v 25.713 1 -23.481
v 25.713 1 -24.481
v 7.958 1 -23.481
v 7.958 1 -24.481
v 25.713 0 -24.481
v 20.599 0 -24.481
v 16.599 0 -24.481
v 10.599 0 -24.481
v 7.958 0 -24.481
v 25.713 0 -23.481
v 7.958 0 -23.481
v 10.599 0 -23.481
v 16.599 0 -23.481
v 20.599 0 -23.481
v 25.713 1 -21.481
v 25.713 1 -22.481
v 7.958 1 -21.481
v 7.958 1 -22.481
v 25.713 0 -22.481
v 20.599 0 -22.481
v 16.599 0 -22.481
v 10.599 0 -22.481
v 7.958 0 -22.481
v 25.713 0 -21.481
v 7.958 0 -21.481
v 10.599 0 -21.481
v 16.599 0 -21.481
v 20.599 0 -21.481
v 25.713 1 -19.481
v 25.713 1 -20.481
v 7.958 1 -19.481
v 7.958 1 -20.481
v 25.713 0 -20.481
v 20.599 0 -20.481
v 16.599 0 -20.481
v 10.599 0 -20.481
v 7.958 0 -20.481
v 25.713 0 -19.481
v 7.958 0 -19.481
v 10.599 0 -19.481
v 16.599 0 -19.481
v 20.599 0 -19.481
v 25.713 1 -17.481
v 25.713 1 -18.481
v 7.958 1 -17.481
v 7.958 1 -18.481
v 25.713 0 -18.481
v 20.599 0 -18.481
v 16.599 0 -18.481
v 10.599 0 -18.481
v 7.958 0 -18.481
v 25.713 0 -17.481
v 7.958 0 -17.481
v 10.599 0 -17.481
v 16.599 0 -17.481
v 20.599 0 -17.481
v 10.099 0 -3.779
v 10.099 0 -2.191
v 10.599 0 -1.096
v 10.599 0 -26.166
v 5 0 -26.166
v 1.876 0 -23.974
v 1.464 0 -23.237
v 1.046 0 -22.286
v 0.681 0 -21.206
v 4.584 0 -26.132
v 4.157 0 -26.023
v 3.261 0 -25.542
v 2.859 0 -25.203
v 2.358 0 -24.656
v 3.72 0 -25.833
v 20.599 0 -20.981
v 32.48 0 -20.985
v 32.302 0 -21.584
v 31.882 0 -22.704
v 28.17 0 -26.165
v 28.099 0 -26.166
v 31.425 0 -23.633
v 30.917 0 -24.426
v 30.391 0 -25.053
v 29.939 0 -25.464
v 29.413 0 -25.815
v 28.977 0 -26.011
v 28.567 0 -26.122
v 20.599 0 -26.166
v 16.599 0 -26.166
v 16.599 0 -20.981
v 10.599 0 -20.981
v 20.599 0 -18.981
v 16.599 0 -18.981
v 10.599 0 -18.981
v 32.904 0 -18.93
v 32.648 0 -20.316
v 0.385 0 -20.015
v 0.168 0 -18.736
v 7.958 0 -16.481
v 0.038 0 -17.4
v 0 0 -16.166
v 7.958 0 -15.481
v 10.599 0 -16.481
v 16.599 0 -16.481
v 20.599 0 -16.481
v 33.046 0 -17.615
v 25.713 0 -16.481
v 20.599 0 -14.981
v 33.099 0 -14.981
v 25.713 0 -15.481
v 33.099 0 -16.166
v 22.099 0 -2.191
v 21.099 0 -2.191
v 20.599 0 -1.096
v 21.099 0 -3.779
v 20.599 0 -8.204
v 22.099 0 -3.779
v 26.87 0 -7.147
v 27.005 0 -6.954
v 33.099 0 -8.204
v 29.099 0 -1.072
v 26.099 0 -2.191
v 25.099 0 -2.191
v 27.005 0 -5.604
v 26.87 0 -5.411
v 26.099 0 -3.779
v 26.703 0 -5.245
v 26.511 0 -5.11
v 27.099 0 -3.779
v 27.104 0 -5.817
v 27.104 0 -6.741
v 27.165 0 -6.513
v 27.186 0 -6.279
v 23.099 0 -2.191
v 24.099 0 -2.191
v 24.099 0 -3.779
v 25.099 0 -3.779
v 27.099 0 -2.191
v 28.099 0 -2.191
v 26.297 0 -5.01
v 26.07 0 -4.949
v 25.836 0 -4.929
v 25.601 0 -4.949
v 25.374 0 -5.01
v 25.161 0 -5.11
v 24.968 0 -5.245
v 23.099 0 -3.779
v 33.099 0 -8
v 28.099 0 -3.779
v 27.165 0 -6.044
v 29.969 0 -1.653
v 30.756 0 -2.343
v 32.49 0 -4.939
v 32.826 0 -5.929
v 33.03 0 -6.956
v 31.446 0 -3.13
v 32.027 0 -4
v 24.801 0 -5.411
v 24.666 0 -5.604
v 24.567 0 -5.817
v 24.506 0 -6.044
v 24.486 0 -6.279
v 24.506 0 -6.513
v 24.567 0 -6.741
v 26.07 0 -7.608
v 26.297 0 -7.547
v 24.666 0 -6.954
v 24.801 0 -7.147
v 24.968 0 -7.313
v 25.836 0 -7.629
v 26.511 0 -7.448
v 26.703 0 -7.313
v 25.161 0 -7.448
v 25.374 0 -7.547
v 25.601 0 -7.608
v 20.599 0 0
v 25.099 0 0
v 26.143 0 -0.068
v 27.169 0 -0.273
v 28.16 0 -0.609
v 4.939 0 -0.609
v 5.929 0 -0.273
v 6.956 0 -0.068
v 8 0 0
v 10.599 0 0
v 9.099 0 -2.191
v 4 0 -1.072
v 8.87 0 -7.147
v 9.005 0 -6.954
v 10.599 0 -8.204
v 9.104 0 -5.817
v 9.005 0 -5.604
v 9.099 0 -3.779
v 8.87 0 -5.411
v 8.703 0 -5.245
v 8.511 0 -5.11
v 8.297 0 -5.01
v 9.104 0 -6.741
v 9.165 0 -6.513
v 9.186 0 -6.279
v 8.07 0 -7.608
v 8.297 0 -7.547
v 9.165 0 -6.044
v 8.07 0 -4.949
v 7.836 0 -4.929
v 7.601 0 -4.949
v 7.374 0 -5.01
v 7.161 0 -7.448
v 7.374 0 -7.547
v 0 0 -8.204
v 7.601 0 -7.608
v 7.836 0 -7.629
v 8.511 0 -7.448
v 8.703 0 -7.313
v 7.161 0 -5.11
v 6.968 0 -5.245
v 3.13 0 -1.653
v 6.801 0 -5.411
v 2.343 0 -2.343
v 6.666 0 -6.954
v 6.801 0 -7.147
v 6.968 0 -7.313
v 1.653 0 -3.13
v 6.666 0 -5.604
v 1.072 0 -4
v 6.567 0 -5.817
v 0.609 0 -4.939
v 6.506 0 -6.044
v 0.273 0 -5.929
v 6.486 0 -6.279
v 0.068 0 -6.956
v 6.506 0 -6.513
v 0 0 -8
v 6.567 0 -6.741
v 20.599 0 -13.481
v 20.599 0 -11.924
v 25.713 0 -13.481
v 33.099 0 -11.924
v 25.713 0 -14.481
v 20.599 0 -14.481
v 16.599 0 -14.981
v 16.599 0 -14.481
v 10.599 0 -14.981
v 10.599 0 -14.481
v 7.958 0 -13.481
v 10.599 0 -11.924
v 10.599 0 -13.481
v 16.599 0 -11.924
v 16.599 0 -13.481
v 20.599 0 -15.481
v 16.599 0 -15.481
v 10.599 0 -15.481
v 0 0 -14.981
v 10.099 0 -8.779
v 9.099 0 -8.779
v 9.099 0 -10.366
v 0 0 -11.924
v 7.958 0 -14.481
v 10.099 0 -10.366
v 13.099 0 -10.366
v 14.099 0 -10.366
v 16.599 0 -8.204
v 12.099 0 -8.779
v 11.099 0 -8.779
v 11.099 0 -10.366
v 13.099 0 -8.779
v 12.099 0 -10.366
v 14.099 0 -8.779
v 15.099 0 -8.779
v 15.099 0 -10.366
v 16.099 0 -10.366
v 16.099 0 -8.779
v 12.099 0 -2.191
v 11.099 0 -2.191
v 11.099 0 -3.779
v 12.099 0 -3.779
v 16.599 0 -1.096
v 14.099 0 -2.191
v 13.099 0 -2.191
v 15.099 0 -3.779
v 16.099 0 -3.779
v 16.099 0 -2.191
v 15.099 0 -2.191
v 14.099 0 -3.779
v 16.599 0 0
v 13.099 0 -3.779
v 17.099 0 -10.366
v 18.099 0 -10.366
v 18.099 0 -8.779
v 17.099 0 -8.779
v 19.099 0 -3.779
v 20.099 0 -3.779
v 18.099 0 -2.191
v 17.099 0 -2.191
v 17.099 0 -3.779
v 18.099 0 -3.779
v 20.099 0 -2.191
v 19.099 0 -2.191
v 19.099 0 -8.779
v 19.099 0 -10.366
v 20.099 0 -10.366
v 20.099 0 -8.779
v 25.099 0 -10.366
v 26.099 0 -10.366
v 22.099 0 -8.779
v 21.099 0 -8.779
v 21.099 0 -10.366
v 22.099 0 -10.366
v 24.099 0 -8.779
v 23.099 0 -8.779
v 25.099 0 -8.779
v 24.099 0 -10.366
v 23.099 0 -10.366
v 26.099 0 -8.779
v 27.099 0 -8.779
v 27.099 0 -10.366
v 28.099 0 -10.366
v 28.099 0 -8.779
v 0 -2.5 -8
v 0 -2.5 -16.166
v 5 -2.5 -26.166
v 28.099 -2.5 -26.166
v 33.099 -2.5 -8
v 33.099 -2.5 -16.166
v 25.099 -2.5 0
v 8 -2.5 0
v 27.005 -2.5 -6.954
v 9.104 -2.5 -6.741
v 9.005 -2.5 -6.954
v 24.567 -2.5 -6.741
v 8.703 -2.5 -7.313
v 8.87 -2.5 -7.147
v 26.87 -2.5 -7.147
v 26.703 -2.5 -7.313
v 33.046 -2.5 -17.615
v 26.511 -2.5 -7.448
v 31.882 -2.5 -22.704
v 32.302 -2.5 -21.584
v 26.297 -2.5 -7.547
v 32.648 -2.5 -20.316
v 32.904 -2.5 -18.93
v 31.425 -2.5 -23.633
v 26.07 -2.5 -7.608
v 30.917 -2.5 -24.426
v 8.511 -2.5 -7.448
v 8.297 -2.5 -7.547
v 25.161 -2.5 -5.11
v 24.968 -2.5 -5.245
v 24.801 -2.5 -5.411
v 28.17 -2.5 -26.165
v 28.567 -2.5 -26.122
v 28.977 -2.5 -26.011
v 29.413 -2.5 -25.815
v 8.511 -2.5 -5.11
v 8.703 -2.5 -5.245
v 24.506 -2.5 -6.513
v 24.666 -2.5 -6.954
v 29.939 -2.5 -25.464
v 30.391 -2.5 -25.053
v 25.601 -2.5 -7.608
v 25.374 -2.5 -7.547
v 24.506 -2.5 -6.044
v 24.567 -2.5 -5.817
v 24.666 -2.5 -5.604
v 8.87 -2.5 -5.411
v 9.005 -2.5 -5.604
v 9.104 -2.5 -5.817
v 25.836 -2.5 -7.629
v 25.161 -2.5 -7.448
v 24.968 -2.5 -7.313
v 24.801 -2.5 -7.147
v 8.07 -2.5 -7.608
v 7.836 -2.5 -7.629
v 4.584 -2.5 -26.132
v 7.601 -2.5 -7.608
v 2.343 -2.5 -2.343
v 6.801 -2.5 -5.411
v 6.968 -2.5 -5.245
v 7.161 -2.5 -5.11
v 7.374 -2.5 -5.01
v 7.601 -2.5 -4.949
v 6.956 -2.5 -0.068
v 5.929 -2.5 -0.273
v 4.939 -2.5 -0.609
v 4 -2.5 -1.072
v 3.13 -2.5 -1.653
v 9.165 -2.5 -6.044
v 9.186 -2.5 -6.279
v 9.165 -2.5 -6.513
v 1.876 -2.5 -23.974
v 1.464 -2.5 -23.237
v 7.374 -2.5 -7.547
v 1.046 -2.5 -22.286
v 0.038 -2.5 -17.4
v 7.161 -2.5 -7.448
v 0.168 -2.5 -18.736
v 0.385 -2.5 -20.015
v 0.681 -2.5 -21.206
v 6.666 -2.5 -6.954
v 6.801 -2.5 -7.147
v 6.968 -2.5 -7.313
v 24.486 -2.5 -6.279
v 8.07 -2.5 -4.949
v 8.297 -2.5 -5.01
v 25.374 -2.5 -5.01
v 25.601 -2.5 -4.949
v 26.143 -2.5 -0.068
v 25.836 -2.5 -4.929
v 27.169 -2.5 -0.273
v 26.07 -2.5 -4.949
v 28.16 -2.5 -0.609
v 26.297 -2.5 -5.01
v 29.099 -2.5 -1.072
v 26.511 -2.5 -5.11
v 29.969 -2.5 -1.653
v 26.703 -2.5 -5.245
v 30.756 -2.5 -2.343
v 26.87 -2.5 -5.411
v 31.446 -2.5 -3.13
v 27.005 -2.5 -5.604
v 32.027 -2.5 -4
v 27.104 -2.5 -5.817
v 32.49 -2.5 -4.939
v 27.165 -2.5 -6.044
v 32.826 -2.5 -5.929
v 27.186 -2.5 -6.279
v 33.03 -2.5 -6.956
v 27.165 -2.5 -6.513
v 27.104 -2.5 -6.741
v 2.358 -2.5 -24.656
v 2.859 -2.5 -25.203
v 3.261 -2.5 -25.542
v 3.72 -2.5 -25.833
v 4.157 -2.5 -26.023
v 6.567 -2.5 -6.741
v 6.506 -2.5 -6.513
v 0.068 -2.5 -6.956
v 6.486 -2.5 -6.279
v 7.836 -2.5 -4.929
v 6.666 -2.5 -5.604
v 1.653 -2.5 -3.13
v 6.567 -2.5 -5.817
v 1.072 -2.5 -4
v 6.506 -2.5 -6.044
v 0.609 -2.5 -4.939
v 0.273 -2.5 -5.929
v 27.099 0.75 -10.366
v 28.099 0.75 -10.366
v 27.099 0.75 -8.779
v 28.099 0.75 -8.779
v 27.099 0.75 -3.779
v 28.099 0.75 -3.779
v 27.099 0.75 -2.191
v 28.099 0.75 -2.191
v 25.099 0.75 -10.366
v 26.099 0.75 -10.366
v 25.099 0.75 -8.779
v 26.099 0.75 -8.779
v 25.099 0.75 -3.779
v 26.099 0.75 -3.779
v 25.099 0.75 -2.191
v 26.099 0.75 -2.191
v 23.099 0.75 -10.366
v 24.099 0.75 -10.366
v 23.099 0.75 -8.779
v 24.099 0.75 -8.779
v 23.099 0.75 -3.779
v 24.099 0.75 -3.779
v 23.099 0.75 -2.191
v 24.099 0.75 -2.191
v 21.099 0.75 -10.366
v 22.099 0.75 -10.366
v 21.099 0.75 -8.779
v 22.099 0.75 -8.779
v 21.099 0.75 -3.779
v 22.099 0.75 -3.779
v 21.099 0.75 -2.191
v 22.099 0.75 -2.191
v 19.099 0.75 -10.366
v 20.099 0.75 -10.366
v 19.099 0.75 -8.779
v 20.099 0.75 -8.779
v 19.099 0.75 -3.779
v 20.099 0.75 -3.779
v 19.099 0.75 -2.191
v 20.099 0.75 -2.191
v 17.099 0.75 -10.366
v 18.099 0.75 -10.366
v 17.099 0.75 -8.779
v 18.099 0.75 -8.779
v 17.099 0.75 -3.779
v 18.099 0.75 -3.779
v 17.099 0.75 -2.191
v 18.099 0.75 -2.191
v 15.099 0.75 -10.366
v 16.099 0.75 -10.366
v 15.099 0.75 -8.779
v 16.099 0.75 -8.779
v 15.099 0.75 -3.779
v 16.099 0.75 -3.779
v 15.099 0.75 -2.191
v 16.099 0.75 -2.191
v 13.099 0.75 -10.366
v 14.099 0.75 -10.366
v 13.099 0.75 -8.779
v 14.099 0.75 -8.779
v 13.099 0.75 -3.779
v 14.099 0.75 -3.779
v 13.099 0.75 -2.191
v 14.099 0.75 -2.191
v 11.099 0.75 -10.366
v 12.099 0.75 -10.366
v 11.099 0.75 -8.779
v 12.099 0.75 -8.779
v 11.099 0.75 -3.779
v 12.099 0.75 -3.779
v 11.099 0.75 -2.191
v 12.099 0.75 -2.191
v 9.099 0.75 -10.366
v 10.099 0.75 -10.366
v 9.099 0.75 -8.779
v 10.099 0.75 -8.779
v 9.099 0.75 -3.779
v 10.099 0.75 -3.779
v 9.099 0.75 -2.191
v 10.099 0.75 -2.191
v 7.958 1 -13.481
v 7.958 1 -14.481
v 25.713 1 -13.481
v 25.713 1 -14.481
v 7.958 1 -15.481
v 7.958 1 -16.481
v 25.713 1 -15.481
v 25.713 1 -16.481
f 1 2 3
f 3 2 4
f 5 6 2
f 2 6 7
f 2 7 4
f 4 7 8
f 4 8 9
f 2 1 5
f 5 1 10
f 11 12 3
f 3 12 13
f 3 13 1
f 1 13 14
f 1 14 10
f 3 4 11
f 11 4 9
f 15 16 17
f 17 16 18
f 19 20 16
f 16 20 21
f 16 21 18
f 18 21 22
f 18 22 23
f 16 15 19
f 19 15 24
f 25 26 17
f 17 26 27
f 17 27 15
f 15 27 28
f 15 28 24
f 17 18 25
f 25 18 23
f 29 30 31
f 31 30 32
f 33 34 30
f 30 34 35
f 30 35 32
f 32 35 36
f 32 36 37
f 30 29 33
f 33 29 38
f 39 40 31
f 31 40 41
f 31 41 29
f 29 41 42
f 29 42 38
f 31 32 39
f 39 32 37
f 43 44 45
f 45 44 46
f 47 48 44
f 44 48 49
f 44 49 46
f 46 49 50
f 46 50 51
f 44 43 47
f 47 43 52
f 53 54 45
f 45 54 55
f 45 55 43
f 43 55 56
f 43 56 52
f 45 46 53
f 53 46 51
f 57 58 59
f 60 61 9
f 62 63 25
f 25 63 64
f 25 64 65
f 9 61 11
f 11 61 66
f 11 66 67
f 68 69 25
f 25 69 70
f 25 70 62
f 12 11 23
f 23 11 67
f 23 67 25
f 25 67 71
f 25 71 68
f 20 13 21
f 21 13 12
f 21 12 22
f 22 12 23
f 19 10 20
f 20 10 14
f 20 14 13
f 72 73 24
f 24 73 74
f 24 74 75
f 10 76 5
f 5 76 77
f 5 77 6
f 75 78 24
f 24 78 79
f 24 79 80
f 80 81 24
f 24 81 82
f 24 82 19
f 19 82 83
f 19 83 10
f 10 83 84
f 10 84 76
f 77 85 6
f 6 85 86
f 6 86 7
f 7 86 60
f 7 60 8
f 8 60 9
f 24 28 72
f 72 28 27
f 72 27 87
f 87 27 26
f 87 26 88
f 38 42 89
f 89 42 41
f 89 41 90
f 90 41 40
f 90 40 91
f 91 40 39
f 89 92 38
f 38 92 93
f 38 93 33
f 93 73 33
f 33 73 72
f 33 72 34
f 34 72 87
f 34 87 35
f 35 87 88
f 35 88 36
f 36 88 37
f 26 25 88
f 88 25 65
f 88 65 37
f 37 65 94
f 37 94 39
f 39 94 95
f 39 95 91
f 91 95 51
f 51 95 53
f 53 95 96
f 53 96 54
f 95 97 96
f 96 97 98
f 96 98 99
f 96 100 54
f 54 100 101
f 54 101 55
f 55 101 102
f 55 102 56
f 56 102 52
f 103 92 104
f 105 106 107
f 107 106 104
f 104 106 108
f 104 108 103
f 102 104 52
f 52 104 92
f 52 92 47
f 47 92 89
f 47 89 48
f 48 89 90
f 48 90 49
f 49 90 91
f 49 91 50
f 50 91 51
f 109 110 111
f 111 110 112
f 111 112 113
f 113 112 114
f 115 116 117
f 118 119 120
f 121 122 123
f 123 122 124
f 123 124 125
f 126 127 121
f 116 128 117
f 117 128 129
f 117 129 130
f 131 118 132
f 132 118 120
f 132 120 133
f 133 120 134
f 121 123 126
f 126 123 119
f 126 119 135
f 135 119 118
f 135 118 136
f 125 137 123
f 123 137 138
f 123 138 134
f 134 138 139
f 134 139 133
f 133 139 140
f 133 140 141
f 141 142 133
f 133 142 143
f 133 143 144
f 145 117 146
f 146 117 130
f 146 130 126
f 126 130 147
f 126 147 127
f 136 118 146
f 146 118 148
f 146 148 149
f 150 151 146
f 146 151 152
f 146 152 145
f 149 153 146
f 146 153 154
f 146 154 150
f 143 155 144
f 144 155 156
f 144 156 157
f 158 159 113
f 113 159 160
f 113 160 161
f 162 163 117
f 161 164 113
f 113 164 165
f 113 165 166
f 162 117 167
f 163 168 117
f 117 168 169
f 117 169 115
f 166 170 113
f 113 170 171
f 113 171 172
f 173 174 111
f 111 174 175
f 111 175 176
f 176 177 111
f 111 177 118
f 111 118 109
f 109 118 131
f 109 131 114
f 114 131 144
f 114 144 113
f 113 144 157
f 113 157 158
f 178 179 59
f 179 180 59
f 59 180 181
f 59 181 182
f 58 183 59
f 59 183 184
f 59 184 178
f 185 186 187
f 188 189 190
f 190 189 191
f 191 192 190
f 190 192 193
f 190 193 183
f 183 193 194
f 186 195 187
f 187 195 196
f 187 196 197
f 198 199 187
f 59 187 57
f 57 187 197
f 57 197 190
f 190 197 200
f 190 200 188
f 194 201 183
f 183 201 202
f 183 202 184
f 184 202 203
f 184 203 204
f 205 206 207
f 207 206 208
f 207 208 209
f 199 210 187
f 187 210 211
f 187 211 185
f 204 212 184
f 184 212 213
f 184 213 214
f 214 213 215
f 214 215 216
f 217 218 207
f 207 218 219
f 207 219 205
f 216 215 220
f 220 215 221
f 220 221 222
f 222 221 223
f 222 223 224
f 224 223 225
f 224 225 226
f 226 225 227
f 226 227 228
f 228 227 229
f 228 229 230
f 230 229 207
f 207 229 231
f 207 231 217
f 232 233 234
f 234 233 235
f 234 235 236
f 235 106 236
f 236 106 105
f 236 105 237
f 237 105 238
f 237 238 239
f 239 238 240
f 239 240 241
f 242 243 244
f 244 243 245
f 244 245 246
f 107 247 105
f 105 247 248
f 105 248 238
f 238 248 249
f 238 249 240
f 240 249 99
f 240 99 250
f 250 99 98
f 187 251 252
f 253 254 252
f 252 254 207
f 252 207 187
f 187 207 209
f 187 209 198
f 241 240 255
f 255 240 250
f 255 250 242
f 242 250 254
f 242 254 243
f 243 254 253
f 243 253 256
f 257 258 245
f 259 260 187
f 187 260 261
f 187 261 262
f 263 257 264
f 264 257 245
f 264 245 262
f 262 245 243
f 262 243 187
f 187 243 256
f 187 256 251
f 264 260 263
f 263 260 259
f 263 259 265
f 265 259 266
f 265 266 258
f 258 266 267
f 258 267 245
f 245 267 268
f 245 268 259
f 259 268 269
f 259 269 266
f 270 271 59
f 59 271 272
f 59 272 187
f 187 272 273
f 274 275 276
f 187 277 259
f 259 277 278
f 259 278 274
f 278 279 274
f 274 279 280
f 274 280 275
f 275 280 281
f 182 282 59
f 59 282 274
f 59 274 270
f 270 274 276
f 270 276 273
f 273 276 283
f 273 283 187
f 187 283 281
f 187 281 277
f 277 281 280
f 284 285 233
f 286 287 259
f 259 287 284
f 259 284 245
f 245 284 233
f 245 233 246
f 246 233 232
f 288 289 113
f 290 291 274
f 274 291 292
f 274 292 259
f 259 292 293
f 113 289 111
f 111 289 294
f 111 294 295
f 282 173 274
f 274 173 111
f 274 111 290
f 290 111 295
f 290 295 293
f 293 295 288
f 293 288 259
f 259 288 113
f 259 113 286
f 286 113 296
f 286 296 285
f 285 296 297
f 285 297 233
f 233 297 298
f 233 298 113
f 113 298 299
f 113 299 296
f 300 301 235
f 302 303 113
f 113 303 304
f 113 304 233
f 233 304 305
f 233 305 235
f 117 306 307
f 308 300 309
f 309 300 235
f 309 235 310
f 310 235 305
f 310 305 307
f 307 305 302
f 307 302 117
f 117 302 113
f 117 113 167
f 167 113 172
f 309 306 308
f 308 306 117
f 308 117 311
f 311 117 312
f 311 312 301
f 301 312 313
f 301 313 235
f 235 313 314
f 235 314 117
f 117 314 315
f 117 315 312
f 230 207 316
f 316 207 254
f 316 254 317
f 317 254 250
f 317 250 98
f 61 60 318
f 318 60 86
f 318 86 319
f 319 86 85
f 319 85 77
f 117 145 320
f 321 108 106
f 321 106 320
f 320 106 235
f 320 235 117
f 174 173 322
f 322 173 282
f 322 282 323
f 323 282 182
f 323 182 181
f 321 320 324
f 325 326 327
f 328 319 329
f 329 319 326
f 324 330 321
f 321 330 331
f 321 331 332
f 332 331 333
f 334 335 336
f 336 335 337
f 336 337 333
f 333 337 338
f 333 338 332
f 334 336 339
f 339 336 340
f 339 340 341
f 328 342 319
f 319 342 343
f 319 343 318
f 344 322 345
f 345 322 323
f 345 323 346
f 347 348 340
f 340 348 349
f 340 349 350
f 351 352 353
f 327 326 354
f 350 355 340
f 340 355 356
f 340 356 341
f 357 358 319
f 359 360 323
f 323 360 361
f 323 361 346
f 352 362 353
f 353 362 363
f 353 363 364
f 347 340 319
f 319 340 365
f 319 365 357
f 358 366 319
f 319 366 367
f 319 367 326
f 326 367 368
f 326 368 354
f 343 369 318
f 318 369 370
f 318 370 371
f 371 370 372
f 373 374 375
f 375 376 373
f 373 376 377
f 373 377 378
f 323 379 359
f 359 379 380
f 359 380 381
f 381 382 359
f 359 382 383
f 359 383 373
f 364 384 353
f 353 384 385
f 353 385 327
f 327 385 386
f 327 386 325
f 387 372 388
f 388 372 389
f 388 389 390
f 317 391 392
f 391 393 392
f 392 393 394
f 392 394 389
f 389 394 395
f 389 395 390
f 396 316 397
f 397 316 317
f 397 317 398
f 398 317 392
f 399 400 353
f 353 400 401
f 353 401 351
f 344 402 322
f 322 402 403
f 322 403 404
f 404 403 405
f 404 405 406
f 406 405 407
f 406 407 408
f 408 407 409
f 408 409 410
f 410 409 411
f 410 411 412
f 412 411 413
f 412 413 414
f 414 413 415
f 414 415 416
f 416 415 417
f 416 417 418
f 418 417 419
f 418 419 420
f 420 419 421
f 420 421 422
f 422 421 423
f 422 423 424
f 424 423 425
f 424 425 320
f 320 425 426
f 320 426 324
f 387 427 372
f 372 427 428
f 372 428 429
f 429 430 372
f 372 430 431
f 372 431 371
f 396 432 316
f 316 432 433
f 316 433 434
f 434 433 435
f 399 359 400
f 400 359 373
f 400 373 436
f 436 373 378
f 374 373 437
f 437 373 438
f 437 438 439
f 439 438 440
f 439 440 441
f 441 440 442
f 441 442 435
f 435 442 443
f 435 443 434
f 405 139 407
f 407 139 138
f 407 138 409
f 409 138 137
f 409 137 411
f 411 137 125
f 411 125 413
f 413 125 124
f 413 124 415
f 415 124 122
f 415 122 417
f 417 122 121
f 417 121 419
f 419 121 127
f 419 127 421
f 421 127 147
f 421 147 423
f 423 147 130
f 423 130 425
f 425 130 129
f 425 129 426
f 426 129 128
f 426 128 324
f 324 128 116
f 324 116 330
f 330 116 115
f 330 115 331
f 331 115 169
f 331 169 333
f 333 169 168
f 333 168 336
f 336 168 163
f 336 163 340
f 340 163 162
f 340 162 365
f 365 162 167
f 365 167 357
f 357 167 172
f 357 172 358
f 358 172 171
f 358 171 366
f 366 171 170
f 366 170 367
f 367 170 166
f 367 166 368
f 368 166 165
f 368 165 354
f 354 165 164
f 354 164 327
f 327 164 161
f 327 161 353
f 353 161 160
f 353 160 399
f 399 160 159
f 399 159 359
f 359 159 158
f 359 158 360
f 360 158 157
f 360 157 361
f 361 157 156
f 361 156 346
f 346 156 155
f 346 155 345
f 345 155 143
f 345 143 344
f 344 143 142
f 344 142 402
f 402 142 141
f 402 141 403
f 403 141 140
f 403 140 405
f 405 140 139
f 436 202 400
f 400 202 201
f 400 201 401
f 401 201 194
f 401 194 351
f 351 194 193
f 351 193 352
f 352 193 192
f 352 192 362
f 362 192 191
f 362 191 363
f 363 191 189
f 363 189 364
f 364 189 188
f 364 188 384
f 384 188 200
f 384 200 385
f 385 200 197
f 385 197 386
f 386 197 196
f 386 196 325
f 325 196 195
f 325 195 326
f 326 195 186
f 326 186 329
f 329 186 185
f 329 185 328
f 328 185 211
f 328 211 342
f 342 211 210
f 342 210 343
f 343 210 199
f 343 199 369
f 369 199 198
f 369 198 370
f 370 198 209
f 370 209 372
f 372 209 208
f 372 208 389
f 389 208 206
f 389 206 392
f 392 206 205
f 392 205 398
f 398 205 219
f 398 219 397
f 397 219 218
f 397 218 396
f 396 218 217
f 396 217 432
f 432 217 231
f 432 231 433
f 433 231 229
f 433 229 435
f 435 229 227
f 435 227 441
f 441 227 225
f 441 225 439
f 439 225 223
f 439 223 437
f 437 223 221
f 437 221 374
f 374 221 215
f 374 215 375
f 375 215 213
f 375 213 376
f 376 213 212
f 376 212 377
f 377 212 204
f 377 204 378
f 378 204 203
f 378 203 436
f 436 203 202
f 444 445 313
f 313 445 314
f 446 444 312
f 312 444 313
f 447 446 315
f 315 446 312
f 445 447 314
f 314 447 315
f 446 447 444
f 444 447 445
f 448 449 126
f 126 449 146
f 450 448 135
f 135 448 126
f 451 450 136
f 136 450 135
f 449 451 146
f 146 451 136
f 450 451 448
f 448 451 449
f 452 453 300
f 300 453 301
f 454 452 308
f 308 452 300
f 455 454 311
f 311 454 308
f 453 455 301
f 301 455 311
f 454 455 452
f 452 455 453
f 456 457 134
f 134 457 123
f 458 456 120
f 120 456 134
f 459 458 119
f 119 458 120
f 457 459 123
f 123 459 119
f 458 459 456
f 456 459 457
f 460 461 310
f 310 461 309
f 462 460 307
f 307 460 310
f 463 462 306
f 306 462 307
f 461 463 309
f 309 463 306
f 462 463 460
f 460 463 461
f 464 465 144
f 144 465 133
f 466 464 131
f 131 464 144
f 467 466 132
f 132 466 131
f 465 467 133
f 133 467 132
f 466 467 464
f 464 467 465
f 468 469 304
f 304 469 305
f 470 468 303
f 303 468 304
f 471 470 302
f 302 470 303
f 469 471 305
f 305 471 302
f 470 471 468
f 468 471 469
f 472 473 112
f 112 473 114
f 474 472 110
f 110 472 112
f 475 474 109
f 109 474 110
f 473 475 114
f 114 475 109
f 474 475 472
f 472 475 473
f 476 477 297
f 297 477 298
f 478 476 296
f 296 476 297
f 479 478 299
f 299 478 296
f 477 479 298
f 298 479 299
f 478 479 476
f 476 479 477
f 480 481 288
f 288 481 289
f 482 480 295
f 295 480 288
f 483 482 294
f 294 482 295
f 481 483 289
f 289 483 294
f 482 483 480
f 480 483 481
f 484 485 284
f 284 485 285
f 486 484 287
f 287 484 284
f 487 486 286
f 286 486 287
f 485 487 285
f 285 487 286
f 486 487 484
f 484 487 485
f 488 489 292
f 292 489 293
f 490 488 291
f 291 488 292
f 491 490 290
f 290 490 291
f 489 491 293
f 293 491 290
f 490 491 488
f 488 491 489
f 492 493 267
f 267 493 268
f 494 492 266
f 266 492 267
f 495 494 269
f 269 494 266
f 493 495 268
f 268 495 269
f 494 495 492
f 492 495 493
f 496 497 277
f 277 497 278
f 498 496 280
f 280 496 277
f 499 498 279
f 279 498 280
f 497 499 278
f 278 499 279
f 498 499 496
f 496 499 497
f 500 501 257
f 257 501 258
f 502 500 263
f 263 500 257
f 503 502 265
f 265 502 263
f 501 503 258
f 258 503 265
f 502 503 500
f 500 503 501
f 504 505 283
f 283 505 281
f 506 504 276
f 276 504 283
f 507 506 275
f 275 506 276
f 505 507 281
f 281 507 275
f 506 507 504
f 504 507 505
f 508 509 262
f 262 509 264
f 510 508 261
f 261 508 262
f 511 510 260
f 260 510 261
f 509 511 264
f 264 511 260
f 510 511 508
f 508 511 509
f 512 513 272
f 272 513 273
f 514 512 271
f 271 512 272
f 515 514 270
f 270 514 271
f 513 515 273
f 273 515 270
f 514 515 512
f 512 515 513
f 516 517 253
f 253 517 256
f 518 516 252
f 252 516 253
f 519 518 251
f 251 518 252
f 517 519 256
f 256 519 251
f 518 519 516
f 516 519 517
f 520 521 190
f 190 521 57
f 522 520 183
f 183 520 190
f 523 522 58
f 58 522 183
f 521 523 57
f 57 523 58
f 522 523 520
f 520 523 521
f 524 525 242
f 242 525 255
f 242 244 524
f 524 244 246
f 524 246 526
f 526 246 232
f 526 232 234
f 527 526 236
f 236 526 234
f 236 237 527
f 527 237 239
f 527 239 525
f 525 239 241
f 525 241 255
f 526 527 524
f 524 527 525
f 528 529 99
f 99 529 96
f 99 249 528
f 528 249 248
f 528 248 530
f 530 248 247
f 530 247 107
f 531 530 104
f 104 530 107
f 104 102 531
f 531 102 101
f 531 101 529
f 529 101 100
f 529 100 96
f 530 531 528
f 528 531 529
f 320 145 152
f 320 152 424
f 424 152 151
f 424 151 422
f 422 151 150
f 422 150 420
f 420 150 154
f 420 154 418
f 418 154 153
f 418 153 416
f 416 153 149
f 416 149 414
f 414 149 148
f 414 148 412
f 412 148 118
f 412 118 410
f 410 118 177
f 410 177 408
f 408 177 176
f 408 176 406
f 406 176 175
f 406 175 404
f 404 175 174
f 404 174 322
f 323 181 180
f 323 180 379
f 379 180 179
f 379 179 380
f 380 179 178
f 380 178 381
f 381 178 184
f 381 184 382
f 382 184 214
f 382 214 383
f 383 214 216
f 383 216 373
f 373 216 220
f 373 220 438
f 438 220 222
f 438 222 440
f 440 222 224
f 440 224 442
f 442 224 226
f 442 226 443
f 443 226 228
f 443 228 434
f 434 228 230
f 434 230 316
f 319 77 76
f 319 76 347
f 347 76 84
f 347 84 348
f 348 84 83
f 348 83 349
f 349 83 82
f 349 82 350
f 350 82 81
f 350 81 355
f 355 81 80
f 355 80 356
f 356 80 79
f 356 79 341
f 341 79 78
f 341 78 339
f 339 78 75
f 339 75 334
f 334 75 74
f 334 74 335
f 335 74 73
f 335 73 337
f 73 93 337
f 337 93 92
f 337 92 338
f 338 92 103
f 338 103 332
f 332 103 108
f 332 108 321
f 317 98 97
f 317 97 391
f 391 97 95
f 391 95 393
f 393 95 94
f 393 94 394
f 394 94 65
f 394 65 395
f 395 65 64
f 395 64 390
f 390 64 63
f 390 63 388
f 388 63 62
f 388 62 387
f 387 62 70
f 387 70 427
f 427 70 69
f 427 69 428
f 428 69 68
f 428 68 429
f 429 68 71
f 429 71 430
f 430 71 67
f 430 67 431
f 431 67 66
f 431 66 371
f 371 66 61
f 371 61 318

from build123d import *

# Parameters (mm, degrees)
SKETCH8_W                  = 33.098892865
SKETCH8_H                  = 26.166292272
BOSS_EXTRUDE5_DEPTH        = 2.5
M2_5_CLEARANCE_HOLE2_D     = 2.7
M2_5_CLEARANCE_HOLE2_DEPTH = 11.188838164
M2_5_CLEARANCE_HOLE2_TIP   = 0.811161836
SKETCH11_W                 = 1
SKETCH11_H                 = 1.5875
BOSS_EXTRUDE6_DEPTH        = 0.75
LPATTERN1_COUNT            = 10
LPATTERN1_PITCH            = 2
SKETCH11_4_W               = 17.754847744
SKETCH11_4_H               = 1
BOSS_EXTRUDE8_DEPTH        = 1
LPATTERN3_COUNT            = 6
LPATTERN3_PITCH            = 2
FILLET5_R                  = 8
FILLET8_SIZE               = 10
FILLET8_SIZE_2             = 5
FILLET9_SIZE               = 10
FILLET9_SIZE_2             = 5


with BuildPart() as part:
    # Sketch8 → Boss-Extrude5 (new body)
    with BuildSketch(Plane(origin=(0, 0, 0), x_dir=(1, 0, 0), z_dir=(0, 1, 0))):
        with Locations((16.549446433, 13.083146136)):
            Rectangle(SKETCH8_W, SKETCH8_H)
    extrude(amount=-BOSS_EXTRUDE5_DEPTH)

    # M2.5 Clearance Hole2
    with Locations(Plane(origin=(0, 0, 0), x_dir=(1, 0, 0), z_dir=(0, 1, 0))):
        with Locations((7.835608917, 6.278792272), (25.835608917, 6.278792272)):
            Hole(M2_5_CLEARANCE_HOLE2_D / 2, depth=M2_5_CLEARANCE_HOLE2_DEPTH)
            with Locations((0, 0, -(M2_5_CLEARANCE_HOLE2_DEPTH + M2_5_CLEARANCE_HOLE2_TIP / 2))):  # 118° drill point
                Cone(0, M2_5_CLEARANCE_HOLE2_D / 2, M2_5_CLEARANCE_HOLE2_TIP, mode=Mode.SUBTRACT)

    # Sketch11 → Boss-Extrude6 (add)
    with BuildSketch(Plane(origin=(0, 0, 0), x_dir=(1, 0, 0), z_dir=(0, 1, 0))):
        with Locations((27.598892865, 9.572542272)):
            Rectangle(SKETCH11_W, SKETCH11_H)
        with Locations((27.598892865, 2.985042272)):
            Rectangle(SKETCH11_W, SKETCH11_H)
    boss_extrude6 = extrude(amount=BOSS_EXTRUDE6_DEPTH)

    # LPattern1: Boss-Extrude6 ×10
    with Locations(*[(-i * LPATTERN1_PITCH, 0, 0) for i in range(1, LPATTERN1_COUNT)]):
        add(boss_extrude6)

    # Sketch11<4> → Boss-Extrude8 (add)
    with BuildSketch(Plane(origin=(0, 0, 0), x_dir=(1, 0, 0), z_dir=(0, 1, 0))):
        with Locations((16.835608917, 13.981416476)):
            Rectangle(SKETCH11_4_W, SKETCH11_4_H)
    boss_extrude8 = extrude(amount=BOSS_EXTRUDE8_DEPTH)

    # LPattern3: Boss-Extrude8 ×6
    with Locations(*[(0, 0, -i * LPATTERN3_PITCH) for i in range(1, LPATTERN3_COUNT)]):
        add(boss_extrude8)

    # Fillet5
    fillet5_edges = [part.edges().sort_by_distance(p)[0] for p in [
        (33.098892865, -1.25, 0),
        (0, -1.25, 0),
    ]]
    fillet(fillet5_edges, radius=FILLET5_R)

    # Fillet8
    # an asymmetric fillet: 10, 5 mm, written as the material it takes off along each edge
    with BuildSketch(Plane(origin=(33.098892865, 25, -26.166292272), x_dir=(0, 0, 1), z_dir=(0, -1, 0))) as fillet8_piece_1:
        with BuildLine():
            Bezier((FILLET8_SIZE, 0), (0, 0), (0, FILLET8_SIZE_2), weights=[1, 0.707106781, 1])
            Line((0, FILLET8_SIZE_2), (0, 0))
            Line((0, 0), (FILLET8_SIZE, 0))
        make_face()
    extrude(amount=52.5, mode=Mode.SUBTRACT)

    # Fillet9
    # an asymmetric fillet: 10, 5 mm, written as the material it takes off along each edge
    with BuildSketch(Plane(origin=(0, 25, -26.166292272), x_dir=(0, 0, 1), z_dir=(0, -1, 0))) as fillet9_piece_1:
        with BuildLine():
            Bezier((FILLET9_SIZE, 0), (0, 0), (0, -FILLET9_SIZE_2), weights=[1, 0.707106781, 1])
            Line((0, -FILLET9_SIZE_2), (0, 0))
            Line((0, 0), (FILLET9_SIZE, 0))
        make_face()
    extrude(amount=52.5, mode=Mode.SUBTRACT)


solid = part.part
